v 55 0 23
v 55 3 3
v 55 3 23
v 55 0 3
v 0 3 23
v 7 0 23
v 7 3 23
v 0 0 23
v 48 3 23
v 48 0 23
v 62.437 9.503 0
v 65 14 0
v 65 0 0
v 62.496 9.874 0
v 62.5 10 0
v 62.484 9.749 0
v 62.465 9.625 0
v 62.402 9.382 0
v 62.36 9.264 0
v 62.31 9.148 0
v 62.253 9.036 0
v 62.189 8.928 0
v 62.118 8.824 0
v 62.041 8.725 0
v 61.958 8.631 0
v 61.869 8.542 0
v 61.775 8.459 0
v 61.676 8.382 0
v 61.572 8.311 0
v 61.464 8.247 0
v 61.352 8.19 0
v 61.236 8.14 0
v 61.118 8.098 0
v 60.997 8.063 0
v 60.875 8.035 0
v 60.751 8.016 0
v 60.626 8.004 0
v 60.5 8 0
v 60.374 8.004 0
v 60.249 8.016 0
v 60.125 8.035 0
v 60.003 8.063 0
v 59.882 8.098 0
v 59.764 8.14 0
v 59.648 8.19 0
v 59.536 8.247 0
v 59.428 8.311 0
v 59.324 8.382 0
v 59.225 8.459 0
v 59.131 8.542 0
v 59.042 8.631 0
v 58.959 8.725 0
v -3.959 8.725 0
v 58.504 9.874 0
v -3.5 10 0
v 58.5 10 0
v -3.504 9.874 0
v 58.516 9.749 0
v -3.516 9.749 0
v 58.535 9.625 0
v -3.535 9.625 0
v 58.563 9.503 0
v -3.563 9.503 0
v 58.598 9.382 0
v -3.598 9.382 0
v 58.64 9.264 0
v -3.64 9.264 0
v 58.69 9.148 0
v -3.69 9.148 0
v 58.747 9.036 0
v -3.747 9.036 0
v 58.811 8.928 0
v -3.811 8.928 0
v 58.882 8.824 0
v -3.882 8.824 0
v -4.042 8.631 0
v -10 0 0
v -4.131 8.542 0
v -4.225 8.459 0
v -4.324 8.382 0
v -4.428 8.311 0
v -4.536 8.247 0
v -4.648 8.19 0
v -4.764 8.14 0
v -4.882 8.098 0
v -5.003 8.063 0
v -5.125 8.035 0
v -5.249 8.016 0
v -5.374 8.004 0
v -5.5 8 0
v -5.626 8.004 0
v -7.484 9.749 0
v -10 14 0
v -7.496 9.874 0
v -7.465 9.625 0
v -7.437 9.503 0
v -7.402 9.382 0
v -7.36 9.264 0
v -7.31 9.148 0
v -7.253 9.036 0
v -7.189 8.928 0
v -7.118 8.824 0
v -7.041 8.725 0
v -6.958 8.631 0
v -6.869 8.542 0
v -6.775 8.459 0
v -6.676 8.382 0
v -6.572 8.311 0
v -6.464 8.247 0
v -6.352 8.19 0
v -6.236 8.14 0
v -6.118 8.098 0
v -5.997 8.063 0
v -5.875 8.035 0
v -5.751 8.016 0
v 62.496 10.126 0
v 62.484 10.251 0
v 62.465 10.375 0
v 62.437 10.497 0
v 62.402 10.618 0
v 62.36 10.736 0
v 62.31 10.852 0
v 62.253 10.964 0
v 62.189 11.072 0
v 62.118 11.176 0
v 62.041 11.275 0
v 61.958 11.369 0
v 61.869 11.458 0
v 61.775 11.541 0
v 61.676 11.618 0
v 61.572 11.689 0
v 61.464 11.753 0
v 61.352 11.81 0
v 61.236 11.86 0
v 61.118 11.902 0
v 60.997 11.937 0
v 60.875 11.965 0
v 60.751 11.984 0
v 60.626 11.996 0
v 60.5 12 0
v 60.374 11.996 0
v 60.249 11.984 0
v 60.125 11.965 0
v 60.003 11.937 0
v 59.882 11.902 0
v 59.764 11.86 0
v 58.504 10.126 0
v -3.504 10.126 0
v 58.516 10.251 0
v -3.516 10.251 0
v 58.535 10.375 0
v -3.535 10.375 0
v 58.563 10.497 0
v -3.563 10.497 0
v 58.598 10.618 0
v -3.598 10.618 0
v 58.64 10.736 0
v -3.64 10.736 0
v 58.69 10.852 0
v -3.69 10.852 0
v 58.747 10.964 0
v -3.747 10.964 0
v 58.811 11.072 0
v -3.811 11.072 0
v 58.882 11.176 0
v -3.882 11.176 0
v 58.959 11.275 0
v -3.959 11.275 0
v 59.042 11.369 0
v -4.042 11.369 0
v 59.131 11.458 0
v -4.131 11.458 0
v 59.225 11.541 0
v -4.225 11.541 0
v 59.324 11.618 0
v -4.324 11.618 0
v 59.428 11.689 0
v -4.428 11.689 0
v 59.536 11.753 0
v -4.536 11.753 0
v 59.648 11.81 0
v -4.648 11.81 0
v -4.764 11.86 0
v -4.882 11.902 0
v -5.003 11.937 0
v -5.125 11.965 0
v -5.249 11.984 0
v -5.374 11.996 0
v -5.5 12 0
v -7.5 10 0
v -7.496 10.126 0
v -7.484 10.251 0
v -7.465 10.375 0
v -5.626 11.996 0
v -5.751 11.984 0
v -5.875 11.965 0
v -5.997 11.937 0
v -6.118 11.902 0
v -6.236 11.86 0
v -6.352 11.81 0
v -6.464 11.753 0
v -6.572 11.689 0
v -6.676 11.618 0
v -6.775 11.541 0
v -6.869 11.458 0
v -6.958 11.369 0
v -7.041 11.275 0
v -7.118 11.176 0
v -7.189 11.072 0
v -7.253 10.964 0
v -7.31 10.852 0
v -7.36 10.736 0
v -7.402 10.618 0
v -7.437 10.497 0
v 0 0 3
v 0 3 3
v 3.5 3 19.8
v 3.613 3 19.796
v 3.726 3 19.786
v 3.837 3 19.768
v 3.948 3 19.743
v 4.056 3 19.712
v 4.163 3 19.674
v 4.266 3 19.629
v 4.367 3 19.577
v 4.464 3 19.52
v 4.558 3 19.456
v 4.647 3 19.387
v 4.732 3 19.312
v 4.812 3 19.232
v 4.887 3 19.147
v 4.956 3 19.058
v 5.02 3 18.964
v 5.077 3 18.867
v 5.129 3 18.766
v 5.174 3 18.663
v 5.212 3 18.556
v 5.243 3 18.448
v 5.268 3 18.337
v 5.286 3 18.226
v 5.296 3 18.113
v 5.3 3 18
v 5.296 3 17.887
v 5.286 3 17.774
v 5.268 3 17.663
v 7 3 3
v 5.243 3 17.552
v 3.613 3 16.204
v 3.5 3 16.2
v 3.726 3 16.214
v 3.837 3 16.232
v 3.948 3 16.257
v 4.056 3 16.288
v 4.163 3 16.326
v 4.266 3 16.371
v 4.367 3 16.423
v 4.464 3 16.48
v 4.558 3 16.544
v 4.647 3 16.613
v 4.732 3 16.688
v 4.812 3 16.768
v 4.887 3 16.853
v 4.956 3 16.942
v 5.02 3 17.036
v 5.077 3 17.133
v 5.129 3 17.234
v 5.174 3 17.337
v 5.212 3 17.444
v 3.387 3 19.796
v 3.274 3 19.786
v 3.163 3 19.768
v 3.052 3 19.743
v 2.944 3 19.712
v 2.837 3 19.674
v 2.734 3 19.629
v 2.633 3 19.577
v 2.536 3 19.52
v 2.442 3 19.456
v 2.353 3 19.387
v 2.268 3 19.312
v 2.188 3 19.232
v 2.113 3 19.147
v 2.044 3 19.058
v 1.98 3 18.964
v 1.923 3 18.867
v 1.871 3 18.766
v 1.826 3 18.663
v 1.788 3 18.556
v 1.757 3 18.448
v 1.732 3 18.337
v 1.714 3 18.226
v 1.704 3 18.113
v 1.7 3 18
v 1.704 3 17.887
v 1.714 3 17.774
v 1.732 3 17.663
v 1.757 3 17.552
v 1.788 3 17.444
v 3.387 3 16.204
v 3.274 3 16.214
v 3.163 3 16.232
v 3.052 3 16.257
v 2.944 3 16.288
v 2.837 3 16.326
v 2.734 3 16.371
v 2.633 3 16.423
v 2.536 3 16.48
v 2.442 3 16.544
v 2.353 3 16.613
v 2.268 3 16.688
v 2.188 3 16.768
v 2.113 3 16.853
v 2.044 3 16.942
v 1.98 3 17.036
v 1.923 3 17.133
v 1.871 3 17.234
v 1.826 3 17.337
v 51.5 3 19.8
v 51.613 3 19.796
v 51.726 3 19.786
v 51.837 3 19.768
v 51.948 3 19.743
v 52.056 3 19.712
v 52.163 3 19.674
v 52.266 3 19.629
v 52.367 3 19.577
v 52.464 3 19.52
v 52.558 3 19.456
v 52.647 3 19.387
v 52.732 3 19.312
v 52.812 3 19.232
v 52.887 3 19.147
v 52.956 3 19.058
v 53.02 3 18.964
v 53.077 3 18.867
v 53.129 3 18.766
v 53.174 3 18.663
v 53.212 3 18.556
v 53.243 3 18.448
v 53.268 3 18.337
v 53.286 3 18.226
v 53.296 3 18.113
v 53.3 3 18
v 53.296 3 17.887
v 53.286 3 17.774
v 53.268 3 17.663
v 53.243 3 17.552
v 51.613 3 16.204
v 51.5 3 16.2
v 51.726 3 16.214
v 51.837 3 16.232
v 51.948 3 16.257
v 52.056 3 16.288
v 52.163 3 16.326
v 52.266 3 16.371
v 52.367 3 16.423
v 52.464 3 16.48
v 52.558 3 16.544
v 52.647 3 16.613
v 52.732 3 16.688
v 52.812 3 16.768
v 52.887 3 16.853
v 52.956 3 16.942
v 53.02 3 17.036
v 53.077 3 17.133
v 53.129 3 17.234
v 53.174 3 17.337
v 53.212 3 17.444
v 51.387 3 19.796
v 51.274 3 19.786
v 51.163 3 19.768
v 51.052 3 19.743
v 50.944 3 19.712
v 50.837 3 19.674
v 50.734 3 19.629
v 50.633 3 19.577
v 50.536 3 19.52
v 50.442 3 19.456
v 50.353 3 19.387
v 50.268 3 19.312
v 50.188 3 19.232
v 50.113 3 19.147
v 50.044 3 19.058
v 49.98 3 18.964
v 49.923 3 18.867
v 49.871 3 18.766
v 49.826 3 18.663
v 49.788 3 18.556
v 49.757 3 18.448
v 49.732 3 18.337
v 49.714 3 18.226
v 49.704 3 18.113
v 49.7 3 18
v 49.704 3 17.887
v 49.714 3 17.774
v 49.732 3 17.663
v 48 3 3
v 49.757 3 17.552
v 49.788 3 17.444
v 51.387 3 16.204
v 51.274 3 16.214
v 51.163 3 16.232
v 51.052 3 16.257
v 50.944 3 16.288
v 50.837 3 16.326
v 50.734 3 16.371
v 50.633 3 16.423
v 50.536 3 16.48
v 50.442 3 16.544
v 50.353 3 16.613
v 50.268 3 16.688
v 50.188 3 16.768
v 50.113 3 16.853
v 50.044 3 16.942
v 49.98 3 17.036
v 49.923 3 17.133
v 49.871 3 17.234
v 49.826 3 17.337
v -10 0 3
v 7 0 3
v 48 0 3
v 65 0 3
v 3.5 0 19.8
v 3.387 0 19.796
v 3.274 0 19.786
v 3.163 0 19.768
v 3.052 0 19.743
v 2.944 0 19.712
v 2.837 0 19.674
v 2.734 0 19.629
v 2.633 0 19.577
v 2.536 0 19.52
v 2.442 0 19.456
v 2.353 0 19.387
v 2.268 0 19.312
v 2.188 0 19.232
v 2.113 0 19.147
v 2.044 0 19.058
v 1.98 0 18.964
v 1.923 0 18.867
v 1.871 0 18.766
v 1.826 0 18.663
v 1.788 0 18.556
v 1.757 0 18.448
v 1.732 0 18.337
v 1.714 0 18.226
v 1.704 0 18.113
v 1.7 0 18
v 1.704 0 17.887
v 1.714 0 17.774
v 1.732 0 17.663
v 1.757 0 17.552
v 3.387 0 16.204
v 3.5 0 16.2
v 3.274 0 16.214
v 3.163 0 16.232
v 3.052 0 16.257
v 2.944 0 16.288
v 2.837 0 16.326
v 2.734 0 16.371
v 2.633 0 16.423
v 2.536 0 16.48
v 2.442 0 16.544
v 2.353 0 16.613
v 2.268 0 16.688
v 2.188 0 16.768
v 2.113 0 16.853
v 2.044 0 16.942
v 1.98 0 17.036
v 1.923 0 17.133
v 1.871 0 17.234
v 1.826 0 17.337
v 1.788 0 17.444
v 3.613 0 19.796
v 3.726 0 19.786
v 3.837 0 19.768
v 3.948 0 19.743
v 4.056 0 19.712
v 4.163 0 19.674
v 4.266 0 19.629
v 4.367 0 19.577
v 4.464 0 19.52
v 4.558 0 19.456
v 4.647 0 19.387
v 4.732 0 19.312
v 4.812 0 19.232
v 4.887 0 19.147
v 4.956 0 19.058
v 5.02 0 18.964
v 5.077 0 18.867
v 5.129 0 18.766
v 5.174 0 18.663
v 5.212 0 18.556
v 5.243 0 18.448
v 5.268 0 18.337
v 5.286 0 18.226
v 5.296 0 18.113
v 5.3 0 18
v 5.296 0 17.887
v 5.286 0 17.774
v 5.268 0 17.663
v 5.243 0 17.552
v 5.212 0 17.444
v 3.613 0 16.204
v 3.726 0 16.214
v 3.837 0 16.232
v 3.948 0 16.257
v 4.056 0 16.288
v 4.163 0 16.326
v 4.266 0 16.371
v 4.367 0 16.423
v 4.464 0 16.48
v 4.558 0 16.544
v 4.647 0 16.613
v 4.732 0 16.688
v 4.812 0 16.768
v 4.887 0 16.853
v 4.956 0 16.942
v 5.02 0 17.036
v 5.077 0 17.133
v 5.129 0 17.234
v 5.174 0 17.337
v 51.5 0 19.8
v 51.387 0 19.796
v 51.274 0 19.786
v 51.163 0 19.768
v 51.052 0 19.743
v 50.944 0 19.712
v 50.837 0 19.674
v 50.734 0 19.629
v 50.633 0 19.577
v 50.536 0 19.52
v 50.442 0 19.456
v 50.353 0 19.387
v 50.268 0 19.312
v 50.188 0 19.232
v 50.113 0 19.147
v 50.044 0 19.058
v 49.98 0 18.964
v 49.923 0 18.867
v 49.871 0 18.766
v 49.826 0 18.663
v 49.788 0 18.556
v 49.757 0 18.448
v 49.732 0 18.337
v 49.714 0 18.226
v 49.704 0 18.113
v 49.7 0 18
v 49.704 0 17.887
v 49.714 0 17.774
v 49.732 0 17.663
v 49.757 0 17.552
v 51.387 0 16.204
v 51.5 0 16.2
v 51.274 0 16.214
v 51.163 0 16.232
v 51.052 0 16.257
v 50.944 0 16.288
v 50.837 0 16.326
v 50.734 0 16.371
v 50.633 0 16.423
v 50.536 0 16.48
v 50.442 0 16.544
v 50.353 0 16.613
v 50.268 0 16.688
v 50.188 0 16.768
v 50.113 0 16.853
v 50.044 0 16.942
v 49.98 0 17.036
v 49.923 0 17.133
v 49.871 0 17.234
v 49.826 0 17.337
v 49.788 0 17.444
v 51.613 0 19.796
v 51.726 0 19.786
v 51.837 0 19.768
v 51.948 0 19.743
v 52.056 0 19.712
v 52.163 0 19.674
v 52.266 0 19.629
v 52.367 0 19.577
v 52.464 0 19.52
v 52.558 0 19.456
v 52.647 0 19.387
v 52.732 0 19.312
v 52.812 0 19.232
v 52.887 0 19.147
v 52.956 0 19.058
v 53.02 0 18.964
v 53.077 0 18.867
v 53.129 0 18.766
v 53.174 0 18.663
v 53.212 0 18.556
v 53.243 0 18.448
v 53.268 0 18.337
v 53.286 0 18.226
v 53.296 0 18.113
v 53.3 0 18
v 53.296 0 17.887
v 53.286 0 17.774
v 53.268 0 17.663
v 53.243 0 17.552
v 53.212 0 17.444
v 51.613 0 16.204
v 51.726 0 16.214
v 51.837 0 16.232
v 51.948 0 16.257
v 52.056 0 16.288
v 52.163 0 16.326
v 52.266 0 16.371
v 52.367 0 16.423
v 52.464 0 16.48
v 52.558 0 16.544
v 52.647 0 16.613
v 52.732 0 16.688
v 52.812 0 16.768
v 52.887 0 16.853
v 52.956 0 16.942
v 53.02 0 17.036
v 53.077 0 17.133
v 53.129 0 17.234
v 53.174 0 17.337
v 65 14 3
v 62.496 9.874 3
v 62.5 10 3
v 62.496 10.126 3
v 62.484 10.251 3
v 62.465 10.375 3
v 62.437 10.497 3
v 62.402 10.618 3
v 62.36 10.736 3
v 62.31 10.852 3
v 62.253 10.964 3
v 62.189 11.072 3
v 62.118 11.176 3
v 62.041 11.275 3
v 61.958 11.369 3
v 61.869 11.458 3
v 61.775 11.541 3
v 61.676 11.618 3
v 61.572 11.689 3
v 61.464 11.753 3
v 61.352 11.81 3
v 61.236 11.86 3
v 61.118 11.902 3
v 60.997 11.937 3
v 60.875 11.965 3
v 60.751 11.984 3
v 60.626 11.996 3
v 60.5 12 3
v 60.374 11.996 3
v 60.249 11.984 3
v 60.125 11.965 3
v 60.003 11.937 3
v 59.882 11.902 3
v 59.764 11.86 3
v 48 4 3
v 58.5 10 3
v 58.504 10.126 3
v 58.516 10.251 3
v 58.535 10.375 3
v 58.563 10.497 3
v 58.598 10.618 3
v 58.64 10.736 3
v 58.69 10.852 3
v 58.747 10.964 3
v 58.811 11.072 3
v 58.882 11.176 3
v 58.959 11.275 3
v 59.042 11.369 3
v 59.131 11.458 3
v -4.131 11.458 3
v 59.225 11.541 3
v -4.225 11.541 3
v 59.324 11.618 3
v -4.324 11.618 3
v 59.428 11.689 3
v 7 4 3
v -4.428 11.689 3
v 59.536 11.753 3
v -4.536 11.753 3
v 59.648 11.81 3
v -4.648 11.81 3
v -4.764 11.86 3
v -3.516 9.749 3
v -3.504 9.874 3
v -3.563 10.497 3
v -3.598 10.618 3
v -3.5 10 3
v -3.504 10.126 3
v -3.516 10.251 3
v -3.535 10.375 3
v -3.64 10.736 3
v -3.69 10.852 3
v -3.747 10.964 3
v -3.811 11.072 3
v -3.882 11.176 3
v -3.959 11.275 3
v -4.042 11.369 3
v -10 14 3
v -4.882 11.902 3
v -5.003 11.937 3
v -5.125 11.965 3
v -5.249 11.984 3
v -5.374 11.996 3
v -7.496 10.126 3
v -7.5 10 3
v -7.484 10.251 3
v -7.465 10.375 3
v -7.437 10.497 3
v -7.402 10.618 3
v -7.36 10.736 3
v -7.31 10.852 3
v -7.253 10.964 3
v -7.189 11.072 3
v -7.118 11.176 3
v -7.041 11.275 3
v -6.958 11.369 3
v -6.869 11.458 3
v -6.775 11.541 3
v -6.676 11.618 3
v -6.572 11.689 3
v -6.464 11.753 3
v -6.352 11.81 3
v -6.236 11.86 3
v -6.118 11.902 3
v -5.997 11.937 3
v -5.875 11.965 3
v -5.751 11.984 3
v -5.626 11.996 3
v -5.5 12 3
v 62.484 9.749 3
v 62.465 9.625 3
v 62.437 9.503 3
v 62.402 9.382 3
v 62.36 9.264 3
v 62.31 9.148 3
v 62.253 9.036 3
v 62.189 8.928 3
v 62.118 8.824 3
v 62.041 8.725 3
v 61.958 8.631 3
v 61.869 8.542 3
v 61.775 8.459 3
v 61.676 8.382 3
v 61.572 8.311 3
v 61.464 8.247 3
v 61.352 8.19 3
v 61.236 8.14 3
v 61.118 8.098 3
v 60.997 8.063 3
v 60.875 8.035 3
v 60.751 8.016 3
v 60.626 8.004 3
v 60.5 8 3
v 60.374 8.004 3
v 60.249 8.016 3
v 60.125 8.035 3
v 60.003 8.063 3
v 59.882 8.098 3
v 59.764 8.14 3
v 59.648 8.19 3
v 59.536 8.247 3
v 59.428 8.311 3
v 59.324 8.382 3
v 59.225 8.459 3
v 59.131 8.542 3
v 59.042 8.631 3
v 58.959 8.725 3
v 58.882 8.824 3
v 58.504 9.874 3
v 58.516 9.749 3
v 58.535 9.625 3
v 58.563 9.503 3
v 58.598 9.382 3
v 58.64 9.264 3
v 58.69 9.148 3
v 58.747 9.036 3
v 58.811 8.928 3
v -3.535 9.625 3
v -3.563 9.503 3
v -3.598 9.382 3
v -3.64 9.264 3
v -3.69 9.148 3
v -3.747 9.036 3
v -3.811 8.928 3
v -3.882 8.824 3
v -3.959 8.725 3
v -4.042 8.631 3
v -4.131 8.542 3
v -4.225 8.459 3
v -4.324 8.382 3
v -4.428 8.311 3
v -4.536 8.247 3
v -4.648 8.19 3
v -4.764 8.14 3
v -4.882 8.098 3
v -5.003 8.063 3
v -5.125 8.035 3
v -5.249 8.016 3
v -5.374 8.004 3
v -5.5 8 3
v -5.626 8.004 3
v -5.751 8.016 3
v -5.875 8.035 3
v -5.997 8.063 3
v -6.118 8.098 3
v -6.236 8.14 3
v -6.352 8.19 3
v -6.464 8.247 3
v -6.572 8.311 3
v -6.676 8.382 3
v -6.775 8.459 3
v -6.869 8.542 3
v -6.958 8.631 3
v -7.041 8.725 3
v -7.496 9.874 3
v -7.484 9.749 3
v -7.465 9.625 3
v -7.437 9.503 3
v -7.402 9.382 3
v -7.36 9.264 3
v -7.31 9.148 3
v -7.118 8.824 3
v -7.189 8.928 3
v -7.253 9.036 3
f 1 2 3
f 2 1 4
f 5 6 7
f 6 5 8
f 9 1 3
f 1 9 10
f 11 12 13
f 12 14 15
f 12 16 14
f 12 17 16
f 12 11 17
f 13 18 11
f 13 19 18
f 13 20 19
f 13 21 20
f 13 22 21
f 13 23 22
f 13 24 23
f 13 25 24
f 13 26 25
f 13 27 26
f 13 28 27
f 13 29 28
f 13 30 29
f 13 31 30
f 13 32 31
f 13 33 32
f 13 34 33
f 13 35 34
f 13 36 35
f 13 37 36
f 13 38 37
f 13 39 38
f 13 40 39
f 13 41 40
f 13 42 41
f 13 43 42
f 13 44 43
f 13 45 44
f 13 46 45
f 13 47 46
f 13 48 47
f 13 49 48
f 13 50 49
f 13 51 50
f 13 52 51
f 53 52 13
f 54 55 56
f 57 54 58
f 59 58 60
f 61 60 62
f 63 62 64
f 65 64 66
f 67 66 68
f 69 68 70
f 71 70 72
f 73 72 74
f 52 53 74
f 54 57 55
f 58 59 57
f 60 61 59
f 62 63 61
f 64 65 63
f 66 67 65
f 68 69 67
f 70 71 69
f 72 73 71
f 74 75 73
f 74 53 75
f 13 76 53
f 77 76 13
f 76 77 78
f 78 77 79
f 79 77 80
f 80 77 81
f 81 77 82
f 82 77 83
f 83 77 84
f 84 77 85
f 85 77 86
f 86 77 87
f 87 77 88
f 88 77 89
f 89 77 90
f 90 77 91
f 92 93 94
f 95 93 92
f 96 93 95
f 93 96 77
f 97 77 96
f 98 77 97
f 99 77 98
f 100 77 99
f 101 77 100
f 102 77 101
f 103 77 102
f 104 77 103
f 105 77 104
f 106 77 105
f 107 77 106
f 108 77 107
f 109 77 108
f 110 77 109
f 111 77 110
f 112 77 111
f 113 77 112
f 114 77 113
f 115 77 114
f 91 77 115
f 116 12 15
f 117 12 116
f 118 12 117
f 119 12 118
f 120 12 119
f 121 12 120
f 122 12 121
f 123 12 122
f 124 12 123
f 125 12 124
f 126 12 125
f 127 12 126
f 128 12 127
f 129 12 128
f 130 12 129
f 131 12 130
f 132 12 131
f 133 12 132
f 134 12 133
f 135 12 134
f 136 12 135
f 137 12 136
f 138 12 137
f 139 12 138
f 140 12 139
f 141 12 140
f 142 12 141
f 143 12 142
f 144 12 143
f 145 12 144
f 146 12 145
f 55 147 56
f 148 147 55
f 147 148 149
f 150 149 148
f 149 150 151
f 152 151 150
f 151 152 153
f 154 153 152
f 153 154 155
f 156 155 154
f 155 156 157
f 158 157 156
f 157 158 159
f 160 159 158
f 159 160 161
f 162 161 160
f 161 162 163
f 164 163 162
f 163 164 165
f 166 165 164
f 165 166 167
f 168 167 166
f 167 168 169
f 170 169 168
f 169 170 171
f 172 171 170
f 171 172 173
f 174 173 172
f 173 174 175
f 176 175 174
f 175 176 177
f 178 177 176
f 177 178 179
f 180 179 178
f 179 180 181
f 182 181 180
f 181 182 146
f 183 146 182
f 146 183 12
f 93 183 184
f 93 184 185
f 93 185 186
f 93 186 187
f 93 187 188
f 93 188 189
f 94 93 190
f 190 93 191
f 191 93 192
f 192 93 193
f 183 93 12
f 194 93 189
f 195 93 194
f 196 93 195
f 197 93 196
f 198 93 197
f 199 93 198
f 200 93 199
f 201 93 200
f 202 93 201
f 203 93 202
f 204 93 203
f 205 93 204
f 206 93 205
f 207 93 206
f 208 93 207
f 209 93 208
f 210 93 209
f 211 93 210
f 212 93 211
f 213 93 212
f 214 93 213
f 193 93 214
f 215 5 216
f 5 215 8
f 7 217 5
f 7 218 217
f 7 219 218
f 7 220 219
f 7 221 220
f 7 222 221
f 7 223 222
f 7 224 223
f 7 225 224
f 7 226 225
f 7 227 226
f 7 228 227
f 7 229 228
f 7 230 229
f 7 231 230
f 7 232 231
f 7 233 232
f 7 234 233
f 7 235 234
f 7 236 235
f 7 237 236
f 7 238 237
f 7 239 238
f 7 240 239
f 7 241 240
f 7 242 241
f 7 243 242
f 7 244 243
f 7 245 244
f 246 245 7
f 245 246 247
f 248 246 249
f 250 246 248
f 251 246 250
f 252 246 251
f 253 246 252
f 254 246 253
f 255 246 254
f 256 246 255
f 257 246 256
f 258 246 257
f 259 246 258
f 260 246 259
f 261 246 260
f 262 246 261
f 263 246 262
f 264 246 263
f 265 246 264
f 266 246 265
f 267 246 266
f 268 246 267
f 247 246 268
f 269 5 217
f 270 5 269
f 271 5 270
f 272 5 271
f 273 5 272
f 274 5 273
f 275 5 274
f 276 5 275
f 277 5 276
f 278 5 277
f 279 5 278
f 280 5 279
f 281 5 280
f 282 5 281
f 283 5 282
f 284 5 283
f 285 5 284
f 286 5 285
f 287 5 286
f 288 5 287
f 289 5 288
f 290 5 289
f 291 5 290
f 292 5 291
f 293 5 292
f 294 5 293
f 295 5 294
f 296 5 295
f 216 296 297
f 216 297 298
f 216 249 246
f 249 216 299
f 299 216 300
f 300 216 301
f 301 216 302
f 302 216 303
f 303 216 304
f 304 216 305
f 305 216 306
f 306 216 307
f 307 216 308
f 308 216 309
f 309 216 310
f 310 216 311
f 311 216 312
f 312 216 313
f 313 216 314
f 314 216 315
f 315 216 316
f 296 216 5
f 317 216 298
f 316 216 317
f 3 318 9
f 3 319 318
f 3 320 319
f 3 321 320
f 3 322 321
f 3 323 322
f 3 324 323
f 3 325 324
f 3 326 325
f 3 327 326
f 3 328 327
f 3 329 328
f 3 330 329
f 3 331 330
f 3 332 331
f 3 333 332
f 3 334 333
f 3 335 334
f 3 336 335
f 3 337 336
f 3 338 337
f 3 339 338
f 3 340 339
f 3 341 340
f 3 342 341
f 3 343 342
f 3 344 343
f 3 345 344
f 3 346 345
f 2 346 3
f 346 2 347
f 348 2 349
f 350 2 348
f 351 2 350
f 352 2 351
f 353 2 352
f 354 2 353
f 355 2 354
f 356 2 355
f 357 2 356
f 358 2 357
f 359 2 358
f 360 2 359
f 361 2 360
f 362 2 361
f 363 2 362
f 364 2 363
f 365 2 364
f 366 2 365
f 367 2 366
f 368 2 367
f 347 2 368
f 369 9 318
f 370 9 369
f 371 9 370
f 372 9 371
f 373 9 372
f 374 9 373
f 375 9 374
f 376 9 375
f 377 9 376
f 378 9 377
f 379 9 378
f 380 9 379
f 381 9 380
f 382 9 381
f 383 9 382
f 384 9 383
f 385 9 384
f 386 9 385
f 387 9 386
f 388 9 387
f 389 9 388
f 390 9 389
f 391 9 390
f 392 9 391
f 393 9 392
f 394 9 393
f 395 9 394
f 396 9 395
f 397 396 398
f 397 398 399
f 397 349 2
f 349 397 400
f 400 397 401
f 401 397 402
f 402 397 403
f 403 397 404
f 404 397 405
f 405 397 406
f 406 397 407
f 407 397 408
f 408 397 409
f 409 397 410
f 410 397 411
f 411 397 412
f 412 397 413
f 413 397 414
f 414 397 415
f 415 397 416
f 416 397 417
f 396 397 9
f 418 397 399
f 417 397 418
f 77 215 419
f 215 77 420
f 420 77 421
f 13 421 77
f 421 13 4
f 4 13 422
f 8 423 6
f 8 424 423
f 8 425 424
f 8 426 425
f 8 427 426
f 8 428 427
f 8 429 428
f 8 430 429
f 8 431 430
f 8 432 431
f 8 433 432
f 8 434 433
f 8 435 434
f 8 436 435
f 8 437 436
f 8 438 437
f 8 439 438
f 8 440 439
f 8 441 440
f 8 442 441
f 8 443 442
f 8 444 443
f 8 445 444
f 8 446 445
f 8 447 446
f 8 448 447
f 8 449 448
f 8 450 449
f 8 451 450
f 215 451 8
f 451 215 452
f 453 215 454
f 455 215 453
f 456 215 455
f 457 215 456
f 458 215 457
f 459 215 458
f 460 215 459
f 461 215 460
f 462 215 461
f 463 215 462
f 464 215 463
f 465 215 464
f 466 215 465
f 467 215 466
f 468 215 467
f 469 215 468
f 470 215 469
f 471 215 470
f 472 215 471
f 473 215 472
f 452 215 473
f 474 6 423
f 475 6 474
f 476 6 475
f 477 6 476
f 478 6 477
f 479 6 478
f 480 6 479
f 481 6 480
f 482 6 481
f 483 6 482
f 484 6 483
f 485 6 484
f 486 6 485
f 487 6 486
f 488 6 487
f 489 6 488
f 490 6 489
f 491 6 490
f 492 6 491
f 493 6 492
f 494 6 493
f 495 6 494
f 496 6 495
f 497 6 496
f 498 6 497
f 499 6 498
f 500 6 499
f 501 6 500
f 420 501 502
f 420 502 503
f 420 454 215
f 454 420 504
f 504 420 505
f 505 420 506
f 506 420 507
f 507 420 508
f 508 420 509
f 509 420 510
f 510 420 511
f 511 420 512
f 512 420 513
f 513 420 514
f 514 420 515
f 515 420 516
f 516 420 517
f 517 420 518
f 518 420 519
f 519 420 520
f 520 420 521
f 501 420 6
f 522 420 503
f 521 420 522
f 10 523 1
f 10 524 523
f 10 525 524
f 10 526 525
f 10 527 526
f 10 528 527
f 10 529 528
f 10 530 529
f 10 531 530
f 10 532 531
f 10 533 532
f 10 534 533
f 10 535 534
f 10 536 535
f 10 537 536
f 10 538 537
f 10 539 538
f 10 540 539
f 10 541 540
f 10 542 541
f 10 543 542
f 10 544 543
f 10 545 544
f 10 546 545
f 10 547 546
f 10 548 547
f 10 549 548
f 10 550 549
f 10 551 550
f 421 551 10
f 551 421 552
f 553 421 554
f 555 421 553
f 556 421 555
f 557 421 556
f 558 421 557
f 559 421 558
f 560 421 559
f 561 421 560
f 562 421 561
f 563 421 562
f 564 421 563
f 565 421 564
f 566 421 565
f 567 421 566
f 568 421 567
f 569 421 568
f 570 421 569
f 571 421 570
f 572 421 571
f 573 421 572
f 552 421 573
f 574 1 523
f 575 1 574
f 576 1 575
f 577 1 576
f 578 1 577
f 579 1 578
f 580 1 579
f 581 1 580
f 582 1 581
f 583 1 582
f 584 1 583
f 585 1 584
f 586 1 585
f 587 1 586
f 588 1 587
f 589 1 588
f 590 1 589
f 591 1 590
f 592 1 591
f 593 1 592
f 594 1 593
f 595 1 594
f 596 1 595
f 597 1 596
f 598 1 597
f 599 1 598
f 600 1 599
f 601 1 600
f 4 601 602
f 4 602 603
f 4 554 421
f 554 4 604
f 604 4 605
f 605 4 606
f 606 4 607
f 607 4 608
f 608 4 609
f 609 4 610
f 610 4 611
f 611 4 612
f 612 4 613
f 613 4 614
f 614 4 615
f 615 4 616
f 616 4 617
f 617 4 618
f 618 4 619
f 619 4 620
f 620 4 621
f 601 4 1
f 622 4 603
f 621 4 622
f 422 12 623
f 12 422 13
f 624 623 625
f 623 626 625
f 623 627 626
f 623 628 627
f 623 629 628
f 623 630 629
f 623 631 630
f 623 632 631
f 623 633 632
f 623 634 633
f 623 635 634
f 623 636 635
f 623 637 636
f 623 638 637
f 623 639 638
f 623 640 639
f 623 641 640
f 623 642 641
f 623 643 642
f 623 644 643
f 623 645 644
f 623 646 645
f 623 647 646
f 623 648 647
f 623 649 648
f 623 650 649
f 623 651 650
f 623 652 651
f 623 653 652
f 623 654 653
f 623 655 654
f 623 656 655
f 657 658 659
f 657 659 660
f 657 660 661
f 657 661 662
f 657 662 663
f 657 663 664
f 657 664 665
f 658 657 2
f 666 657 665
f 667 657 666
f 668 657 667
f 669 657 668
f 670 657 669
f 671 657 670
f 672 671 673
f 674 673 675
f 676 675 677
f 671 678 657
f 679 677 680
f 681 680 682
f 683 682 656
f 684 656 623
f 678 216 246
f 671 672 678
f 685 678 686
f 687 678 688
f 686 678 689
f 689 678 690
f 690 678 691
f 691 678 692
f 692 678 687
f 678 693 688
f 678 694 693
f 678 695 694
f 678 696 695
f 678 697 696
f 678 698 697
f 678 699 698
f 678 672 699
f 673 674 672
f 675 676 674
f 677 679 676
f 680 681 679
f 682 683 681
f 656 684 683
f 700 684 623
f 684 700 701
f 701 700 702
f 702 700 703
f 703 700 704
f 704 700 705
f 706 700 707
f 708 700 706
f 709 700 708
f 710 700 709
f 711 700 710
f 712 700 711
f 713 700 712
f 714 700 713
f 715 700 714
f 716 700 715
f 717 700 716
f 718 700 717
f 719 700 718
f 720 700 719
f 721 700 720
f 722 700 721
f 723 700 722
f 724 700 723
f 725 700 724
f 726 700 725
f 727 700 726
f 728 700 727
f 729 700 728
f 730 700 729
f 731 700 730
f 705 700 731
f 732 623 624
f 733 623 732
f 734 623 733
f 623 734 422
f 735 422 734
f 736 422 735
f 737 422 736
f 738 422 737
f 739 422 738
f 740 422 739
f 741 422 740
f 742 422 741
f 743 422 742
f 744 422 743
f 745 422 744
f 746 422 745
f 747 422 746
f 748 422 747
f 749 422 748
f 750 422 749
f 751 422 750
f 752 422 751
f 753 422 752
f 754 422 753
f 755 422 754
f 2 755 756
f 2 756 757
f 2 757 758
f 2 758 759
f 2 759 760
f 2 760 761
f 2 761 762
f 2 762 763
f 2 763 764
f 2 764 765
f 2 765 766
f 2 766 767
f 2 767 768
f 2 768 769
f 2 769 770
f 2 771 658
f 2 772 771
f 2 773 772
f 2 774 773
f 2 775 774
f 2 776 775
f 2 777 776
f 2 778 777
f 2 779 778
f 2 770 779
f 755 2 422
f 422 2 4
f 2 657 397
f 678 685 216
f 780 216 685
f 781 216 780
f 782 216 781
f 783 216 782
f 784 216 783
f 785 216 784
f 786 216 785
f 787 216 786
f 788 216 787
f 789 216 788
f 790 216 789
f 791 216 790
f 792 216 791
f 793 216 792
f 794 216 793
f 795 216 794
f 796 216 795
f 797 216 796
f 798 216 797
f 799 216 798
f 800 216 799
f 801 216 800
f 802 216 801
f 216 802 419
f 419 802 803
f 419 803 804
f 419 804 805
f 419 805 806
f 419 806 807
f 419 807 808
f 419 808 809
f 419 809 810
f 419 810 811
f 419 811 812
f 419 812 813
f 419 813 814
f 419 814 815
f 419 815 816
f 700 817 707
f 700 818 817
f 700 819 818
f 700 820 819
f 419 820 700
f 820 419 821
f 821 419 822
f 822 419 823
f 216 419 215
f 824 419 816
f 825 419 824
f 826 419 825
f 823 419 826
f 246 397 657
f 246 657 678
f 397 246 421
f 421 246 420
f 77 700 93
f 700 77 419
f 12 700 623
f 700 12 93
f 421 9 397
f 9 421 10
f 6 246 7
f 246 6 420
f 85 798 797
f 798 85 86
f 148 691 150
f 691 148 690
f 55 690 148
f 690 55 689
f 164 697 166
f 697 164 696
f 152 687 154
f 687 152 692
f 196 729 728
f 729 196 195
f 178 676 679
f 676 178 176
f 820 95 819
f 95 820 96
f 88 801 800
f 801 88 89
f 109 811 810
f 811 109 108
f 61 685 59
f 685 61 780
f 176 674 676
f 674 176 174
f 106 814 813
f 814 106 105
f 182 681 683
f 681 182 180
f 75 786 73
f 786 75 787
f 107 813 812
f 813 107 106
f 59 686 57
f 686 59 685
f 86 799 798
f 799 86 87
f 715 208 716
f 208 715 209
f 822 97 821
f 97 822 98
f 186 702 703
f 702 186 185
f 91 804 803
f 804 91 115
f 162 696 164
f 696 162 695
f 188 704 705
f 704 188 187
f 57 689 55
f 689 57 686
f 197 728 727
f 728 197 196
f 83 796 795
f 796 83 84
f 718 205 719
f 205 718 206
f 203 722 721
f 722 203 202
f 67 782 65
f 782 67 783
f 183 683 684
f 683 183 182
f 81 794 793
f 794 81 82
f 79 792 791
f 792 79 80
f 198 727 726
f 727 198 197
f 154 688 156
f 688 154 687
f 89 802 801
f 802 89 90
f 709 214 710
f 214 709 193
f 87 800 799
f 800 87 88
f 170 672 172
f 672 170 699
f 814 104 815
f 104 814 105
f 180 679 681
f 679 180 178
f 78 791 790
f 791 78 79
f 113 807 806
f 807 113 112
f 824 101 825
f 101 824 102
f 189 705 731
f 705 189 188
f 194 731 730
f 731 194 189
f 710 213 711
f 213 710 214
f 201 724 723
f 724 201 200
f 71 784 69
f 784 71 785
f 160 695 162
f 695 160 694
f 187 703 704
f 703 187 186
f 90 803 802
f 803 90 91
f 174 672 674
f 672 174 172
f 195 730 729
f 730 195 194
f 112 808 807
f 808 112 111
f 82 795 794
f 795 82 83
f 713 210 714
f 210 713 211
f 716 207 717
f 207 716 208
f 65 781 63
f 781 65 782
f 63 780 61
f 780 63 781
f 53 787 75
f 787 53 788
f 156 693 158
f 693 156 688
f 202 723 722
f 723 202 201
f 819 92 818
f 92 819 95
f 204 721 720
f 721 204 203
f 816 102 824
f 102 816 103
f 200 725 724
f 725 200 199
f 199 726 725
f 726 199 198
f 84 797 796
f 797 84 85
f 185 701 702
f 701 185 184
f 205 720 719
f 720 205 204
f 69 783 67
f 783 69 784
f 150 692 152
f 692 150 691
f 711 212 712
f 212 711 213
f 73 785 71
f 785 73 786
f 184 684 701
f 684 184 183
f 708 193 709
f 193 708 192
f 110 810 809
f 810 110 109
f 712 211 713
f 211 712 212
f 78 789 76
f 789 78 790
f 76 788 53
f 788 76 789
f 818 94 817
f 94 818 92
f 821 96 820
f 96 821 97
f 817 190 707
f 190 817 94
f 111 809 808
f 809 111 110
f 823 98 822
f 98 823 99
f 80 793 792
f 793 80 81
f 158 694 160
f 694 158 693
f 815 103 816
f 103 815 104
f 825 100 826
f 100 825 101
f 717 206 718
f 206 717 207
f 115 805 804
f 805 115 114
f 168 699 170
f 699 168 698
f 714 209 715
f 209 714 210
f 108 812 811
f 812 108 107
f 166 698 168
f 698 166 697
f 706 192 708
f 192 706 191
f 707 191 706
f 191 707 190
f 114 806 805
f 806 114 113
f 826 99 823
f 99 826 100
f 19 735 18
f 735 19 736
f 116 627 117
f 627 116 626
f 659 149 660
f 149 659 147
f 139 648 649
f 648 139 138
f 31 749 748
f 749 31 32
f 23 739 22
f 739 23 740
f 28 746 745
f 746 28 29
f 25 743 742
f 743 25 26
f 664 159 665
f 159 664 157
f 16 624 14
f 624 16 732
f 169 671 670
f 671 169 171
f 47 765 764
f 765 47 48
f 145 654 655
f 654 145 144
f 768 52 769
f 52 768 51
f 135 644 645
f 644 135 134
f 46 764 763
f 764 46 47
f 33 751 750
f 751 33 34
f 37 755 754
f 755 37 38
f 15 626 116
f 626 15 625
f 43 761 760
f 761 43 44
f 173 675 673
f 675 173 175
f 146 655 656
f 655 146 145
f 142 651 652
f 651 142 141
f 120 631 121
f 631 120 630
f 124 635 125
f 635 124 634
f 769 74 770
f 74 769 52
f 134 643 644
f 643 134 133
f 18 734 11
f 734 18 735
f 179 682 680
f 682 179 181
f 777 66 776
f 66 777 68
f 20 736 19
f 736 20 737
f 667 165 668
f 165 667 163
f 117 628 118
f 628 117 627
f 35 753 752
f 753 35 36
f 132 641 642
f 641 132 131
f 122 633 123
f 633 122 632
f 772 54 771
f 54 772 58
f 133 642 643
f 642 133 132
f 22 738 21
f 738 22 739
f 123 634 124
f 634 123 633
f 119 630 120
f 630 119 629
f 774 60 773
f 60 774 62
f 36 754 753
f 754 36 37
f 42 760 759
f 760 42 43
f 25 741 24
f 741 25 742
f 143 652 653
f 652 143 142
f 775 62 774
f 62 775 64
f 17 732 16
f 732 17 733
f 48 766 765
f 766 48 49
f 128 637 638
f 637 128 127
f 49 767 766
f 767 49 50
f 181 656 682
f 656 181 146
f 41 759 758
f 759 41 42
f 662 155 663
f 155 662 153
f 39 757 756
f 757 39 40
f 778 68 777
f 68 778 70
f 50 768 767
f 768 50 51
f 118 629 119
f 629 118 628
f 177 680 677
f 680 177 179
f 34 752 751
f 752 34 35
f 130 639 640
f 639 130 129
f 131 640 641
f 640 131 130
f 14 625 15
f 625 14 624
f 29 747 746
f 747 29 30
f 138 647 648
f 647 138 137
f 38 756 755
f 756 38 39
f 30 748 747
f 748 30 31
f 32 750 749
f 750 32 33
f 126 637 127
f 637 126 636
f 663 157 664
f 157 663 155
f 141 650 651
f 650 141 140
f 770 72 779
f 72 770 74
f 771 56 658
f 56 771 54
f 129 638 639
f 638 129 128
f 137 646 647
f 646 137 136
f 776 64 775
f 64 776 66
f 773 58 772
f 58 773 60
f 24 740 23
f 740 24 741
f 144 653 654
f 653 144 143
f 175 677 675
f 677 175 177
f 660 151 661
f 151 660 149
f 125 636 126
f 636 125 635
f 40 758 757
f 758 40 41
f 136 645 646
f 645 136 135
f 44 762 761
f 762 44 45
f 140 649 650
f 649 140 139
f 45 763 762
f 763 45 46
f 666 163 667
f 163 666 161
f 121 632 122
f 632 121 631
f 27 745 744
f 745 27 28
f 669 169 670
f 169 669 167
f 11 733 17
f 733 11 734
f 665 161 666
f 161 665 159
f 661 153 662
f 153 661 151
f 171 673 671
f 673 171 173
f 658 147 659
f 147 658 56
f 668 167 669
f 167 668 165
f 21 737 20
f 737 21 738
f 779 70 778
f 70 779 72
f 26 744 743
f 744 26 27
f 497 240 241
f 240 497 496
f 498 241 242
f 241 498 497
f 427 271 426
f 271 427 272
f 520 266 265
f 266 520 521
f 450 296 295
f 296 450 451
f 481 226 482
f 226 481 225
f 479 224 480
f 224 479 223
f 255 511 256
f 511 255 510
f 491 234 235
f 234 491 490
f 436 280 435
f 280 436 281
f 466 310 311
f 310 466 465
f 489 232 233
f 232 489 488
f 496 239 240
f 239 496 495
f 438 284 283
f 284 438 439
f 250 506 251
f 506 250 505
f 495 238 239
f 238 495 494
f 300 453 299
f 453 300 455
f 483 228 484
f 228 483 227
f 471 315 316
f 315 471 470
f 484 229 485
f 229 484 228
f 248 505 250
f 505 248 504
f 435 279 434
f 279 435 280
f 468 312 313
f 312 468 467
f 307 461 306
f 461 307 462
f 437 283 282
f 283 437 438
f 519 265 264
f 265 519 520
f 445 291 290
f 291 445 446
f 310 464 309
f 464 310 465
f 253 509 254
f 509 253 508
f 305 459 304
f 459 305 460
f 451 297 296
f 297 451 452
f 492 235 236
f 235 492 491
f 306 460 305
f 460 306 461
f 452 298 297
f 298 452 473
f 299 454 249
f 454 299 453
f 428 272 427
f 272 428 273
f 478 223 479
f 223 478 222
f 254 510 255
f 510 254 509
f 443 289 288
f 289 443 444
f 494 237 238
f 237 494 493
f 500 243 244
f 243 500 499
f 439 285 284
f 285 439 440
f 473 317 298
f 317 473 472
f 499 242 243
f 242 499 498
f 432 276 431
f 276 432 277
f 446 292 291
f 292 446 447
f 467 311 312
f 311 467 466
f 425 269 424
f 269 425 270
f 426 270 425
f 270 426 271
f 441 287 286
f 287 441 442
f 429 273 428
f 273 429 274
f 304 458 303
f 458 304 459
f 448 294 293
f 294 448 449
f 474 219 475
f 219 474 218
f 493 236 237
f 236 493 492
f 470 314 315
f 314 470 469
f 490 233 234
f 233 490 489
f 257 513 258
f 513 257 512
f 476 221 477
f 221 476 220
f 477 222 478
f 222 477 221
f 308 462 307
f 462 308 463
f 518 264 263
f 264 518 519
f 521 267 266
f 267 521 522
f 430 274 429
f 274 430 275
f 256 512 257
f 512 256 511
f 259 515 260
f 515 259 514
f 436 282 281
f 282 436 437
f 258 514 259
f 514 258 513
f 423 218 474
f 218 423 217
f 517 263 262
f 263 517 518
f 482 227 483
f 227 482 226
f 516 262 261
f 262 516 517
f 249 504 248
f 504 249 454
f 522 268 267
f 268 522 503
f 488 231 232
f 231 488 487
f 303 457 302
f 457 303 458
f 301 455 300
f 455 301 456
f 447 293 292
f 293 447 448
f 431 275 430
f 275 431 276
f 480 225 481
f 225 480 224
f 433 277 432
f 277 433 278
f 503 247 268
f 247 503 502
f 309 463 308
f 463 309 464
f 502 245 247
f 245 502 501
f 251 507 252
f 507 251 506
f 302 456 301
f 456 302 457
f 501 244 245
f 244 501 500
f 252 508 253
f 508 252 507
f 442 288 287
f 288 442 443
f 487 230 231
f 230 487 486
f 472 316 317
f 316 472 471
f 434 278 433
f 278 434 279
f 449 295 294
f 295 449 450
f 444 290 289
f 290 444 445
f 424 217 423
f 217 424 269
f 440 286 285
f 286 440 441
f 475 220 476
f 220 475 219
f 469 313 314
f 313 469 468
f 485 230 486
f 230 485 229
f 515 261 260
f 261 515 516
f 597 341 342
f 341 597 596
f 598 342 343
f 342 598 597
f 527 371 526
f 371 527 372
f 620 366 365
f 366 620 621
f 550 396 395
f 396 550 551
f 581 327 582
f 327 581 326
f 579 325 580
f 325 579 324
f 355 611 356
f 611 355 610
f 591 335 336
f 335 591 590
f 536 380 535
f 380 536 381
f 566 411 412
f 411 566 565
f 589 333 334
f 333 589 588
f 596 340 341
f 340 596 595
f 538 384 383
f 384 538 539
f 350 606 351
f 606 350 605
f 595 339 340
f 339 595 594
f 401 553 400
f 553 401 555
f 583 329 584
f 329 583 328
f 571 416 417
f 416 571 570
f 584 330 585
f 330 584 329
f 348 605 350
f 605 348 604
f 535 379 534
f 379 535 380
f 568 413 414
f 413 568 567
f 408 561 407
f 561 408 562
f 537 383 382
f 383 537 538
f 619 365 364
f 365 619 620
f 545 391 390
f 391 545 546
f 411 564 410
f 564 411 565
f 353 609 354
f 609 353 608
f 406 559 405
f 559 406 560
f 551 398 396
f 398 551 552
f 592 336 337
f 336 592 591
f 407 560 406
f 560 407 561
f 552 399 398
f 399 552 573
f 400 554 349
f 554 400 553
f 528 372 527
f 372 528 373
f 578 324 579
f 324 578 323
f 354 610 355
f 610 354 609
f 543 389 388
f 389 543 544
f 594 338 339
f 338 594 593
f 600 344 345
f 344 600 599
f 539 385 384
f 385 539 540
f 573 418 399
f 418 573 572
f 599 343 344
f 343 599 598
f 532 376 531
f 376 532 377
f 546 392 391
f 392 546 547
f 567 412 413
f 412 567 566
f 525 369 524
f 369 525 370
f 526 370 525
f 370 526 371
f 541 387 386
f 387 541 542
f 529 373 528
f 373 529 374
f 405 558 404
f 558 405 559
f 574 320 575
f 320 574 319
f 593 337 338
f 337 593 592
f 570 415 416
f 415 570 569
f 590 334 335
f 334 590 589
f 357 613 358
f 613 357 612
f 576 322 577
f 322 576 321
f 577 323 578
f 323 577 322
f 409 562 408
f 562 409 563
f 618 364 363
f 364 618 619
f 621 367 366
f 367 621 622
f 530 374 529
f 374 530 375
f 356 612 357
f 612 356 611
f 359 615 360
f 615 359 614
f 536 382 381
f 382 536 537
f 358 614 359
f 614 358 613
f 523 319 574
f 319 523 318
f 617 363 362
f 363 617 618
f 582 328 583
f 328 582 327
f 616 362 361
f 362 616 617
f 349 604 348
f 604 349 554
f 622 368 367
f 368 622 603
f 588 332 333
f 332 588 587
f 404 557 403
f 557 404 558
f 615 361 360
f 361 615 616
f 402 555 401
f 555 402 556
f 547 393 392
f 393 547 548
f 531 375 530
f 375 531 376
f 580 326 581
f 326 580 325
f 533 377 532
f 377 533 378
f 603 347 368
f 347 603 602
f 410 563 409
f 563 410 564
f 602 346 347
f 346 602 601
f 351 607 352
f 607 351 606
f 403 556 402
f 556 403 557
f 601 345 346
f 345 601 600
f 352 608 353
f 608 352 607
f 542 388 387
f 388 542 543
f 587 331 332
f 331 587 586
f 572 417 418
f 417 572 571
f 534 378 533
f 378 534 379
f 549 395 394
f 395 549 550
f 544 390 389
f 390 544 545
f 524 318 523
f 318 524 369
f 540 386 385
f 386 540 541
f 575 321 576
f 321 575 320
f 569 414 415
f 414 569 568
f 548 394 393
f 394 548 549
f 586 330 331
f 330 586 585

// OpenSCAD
difference(){
	union(){

        translate([0,0,0]){
            cube([55,3,23], center=false);
        }         
        translate([-10,0,0]){
            cube([75,14,3], center=false);
        }         



	}
	union() {

        translate([(55-41)/2,-1,3]){
            cube([41,5,23], center=false);
        }         

        translate([55/2-33,10,-1]){
            rotate([0,0,0]){
                cylinder(h=117, r=2, $fn=100, center=false);
            }
        }         
        translate([55/2+33,10,-1]){
            rotate([0,0,0]){
                cylinder(h=117, r=2, $fn=100, center=false);
            }
        }         
        
        translate([55/2-48/2,20,18]){
            rotate([90,0,0]){
                cylinder(h=117, r=1.8, $fn=100, center=false);
            }
        }         
        translate([55/2+48/2,20,18]){
            rotate([90,0,0]){
                cylinder(h=117, r=1.8, $fn=100, center=false);
            }
        }         
        
	}
}
